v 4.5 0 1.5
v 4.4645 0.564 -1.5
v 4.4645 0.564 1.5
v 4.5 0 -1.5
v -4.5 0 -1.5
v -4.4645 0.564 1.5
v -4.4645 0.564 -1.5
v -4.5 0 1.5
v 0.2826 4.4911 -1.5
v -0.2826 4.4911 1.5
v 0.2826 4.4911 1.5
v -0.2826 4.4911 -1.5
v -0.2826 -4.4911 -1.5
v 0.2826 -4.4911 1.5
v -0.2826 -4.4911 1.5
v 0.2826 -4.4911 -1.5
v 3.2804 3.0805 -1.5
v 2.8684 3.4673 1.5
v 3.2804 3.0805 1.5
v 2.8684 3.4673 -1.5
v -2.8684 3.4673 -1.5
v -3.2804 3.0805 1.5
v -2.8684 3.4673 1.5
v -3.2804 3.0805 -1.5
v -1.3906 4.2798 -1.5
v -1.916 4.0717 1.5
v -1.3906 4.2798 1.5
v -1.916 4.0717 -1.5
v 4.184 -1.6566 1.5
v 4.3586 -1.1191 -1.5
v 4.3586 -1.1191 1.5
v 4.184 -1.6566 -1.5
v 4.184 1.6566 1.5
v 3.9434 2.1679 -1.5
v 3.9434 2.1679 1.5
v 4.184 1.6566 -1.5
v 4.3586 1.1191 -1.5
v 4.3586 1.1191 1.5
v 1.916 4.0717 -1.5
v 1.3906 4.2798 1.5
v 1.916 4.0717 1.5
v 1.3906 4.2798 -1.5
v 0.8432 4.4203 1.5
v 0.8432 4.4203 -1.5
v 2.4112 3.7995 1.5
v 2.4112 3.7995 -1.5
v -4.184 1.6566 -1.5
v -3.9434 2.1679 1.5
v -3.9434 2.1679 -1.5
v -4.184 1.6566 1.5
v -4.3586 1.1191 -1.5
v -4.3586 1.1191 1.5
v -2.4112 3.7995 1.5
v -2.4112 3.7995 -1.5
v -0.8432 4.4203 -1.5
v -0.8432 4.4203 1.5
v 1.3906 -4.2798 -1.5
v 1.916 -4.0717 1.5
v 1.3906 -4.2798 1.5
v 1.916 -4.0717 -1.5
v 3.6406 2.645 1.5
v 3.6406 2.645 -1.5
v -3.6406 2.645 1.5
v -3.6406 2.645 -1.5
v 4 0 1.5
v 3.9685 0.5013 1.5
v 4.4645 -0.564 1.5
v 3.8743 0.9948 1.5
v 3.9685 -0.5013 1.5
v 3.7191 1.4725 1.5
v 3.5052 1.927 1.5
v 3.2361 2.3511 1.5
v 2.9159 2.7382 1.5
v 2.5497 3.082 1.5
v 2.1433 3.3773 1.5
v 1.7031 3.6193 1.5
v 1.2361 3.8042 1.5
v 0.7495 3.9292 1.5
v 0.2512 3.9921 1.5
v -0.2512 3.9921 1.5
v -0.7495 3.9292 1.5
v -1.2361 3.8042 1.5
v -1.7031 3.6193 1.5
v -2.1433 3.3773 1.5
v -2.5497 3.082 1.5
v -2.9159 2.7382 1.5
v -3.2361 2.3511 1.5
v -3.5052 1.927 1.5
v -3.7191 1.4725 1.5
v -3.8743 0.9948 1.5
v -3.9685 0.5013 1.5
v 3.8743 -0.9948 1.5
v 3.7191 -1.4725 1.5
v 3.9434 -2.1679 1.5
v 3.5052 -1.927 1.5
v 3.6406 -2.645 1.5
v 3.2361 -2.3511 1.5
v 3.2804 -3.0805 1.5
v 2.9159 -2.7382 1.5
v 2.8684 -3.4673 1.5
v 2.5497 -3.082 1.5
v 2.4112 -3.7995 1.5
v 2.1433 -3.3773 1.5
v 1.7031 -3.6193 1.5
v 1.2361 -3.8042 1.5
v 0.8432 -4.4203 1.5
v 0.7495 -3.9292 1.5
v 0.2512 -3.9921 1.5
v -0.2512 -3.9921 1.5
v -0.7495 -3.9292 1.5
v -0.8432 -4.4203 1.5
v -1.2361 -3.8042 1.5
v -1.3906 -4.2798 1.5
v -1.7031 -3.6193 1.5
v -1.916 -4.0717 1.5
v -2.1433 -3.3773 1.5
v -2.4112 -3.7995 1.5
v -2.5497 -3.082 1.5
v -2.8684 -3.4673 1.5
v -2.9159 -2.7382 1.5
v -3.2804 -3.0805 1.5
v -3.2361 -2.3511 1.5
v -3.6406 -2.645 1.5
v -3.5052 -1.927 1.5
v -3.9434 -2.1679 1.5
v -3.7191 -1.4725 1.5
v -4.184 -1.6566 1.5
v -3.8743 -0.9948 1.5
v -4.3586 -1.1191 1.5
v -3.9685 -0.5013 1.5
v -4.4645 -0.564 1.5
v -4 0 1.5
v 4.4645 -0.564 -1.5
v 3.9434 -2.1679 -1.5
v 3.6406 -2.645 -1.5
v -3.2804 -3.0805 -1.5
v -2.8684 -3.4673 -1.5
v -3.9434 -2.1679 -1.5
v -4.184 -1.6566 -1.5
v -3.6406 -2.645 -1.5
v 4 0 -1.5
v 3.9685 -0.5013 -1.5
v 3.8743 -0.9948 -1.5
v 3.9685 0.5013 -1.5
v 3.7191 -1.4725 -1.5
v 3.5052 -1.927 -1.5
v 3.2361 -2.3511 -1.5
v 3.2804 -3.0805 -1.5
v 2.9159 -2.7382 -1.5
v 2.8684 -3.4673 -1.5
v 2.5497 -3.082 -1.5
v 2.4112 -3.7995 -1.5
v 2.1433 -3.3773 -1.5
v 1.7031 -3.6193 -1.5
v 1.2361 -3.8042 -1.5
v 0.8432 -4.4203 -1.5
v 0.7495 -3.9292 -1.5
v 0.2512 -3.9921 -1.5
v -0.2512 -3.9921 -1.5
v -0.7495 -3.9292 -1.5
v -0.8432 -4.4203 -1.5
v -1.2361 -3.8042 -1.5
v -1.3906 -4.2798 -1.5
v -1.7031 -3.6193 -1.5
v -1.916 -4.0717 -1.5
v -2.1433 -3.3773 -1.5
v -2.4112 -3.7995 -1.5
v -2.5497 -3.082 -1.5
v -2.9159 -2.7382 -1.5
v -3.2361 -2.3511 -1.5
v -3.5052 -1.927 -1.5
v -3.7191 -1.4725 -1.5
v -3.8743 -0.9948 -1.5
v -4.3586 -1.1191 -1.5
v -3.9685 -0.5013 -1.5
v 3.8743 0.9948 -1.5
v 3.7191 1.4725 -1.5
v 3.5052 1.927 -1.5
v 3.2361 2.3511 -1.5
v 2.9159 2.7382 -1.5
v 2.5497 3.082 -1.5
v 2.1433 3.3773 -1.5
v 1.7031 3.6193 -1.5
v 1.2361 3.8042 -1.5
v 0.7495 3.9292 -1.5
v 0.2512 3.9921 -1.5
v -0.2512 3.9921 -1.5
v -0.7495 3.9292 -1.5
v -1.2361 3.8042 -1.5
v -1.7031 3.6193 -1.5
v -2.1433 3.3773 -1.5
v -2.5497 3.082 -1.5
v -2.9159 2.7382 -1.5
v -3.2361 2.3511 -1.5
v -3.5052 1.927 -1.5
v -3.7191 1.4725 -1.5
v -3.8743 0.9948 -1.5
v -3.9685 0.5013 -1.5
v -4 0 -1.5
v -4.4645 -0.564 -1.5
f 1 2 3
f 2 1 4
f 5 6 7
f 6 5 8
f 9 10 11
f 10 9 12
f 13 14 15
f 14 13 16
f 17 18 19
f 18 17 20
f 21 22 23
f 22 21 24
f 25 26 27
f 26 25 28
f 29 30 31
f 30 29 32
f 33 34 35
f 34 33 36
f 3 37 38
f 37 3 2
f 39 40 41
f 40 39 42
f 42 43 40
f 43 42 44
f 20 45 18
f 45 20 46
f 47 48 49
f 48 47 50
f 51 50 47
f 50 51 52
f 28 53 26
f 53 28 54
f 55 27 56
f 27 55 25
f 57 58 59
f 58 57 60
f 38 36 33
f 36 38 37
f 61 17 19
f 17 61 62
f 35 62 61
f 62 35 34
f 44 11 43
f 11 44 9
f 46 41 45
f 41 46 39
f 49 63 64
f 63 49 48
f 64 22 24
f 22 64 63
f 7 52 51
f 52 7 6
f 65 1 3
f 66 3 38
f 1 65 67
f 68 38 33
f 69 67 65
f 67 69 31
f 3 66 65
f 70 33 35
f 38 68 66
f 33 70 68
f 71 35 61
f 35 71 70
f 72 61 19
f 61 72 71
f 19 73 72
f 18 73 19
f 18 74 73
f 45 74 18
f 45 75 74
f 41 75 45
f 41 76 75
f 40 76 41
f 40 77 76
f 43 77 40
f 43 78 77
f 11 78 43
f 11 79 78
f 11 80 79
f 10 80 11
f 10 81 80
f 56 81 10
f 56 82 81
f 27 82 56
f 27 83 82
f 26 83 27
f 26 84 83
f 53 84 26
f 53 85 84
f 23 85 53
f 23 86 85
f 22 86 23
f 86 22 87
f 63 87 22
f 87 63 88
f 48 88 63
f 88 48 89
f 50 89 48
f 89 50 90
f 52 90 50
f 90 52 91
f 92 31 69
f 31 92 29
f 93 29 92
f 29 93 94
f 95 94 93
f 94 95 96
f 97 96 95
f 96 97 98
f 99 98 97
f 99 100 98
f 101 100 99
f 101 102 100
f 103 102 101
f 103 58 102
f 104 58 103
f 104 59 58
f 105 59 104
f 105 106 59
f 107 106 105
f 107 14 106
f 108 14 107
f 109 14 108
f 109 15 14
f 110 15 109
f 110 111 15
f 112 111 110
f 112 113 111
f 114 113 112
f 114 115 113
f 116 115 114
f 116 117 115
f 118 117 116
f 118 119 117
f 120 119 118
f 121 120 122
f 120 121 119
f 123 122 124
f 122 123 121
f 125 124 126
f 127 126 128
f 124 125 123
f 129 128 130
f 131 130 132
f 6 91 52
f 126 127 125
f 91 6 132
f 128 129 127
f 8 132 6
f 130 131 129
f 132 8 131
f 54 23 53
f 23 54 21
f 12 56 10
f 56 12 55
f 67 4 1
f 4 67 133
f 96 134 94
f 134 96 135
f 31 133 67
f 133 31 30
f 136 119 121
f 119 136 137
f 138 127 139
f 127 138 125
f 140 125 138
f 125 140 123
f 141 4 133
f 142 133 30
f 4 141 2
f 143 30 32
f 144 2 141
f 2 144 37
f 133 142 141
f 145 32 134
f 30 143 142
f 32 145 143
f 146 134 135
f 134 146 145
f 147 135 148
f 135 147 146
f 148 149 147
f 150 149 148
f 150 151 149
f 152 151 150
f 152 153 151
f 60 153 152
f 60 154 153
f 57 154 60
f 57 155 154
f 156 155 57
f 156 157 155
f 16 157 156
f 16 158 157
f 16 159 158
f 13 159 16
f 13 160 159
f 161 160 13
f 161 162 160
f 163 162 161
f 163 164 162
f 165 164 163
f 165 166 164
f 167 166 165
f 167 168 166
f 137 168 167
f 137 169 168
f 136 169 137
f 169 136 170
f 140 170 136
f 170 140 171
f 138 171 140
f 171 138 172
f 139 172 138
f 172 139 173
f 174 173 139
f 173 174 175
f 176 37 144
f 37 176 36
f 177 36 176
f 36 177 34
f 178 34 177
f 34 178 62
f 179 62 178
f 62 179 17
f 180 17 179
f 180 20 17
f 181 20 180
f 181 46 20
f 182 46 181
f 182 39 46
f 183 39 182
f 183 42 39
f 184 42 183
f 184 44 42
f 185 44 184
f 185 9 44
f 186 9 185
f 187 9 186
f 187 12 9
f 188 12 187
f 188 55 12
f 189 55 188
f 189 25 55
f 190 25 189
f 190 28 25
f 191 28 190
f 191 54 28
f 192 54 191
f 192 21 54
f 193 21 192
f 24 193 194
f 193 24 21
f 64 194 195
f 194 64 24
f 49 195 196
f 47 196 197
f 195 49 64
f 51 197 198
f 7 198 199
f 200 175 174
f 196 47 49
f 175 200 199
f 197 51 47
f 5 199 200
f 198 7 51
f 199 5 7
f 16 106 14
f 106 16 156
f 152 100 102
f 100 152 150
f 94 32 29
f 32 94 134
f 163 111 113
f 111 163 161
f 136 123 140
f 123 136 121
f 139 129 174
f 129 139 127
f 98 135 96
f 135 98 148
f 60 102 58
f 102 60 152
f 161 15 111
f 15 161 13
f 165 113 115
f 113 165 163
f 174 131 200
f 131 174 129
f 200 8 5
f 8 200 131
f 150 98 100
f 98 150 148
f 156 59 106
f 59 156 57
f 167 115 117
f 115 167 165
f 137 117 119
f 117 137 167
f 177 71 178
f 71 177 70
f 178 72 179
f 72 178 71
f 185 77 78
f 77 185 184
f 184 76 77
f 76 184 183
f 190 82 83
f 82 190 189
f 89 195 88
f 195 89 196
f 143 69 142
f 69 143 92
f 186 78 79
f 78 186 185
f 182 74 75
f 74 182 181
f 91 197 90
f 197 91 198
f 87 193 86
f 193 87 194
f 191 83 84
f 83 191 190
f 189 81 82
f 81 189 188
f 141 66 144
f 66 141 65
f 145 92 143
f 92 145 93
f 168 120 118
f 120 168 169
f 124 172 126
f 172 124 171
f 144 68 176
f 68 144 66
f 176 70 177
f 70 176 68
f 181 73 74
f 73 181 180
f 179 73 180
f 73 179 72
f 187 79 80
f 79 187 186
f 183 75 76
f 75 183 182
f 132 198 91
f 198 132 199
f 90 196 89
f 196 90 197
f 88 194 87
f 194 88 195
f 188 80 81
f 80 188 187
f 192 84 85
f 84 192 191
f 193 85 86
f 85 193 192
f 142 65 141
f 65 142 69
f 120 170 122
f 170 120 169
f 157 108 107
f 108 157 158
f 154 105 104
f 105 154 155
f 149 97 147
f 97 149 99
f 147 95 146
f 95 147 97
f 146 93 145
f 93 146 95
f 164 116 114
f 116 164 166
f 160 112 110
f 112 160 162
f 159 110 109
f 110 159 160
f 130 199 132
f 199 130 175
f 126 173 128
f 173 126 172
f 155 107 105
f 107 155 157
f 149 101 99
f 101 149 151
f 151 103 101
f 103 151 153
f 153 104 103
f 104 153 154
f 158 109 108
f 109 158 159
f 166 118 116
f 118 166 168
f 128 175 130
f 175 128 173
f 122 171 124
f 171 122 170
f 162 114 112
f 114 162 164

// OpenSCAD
$fn = 50;


difference() {
	union() {
		translate(v = [0, 0, -1.5000000000]) {
			cylinder(h = 3, r = 4.5000000000);
		}
	}
	union() {
		translate(v = [0, 0, -100.0000000000]) {
			cylinder(h = 200, r = 4);
		}
	}
}
